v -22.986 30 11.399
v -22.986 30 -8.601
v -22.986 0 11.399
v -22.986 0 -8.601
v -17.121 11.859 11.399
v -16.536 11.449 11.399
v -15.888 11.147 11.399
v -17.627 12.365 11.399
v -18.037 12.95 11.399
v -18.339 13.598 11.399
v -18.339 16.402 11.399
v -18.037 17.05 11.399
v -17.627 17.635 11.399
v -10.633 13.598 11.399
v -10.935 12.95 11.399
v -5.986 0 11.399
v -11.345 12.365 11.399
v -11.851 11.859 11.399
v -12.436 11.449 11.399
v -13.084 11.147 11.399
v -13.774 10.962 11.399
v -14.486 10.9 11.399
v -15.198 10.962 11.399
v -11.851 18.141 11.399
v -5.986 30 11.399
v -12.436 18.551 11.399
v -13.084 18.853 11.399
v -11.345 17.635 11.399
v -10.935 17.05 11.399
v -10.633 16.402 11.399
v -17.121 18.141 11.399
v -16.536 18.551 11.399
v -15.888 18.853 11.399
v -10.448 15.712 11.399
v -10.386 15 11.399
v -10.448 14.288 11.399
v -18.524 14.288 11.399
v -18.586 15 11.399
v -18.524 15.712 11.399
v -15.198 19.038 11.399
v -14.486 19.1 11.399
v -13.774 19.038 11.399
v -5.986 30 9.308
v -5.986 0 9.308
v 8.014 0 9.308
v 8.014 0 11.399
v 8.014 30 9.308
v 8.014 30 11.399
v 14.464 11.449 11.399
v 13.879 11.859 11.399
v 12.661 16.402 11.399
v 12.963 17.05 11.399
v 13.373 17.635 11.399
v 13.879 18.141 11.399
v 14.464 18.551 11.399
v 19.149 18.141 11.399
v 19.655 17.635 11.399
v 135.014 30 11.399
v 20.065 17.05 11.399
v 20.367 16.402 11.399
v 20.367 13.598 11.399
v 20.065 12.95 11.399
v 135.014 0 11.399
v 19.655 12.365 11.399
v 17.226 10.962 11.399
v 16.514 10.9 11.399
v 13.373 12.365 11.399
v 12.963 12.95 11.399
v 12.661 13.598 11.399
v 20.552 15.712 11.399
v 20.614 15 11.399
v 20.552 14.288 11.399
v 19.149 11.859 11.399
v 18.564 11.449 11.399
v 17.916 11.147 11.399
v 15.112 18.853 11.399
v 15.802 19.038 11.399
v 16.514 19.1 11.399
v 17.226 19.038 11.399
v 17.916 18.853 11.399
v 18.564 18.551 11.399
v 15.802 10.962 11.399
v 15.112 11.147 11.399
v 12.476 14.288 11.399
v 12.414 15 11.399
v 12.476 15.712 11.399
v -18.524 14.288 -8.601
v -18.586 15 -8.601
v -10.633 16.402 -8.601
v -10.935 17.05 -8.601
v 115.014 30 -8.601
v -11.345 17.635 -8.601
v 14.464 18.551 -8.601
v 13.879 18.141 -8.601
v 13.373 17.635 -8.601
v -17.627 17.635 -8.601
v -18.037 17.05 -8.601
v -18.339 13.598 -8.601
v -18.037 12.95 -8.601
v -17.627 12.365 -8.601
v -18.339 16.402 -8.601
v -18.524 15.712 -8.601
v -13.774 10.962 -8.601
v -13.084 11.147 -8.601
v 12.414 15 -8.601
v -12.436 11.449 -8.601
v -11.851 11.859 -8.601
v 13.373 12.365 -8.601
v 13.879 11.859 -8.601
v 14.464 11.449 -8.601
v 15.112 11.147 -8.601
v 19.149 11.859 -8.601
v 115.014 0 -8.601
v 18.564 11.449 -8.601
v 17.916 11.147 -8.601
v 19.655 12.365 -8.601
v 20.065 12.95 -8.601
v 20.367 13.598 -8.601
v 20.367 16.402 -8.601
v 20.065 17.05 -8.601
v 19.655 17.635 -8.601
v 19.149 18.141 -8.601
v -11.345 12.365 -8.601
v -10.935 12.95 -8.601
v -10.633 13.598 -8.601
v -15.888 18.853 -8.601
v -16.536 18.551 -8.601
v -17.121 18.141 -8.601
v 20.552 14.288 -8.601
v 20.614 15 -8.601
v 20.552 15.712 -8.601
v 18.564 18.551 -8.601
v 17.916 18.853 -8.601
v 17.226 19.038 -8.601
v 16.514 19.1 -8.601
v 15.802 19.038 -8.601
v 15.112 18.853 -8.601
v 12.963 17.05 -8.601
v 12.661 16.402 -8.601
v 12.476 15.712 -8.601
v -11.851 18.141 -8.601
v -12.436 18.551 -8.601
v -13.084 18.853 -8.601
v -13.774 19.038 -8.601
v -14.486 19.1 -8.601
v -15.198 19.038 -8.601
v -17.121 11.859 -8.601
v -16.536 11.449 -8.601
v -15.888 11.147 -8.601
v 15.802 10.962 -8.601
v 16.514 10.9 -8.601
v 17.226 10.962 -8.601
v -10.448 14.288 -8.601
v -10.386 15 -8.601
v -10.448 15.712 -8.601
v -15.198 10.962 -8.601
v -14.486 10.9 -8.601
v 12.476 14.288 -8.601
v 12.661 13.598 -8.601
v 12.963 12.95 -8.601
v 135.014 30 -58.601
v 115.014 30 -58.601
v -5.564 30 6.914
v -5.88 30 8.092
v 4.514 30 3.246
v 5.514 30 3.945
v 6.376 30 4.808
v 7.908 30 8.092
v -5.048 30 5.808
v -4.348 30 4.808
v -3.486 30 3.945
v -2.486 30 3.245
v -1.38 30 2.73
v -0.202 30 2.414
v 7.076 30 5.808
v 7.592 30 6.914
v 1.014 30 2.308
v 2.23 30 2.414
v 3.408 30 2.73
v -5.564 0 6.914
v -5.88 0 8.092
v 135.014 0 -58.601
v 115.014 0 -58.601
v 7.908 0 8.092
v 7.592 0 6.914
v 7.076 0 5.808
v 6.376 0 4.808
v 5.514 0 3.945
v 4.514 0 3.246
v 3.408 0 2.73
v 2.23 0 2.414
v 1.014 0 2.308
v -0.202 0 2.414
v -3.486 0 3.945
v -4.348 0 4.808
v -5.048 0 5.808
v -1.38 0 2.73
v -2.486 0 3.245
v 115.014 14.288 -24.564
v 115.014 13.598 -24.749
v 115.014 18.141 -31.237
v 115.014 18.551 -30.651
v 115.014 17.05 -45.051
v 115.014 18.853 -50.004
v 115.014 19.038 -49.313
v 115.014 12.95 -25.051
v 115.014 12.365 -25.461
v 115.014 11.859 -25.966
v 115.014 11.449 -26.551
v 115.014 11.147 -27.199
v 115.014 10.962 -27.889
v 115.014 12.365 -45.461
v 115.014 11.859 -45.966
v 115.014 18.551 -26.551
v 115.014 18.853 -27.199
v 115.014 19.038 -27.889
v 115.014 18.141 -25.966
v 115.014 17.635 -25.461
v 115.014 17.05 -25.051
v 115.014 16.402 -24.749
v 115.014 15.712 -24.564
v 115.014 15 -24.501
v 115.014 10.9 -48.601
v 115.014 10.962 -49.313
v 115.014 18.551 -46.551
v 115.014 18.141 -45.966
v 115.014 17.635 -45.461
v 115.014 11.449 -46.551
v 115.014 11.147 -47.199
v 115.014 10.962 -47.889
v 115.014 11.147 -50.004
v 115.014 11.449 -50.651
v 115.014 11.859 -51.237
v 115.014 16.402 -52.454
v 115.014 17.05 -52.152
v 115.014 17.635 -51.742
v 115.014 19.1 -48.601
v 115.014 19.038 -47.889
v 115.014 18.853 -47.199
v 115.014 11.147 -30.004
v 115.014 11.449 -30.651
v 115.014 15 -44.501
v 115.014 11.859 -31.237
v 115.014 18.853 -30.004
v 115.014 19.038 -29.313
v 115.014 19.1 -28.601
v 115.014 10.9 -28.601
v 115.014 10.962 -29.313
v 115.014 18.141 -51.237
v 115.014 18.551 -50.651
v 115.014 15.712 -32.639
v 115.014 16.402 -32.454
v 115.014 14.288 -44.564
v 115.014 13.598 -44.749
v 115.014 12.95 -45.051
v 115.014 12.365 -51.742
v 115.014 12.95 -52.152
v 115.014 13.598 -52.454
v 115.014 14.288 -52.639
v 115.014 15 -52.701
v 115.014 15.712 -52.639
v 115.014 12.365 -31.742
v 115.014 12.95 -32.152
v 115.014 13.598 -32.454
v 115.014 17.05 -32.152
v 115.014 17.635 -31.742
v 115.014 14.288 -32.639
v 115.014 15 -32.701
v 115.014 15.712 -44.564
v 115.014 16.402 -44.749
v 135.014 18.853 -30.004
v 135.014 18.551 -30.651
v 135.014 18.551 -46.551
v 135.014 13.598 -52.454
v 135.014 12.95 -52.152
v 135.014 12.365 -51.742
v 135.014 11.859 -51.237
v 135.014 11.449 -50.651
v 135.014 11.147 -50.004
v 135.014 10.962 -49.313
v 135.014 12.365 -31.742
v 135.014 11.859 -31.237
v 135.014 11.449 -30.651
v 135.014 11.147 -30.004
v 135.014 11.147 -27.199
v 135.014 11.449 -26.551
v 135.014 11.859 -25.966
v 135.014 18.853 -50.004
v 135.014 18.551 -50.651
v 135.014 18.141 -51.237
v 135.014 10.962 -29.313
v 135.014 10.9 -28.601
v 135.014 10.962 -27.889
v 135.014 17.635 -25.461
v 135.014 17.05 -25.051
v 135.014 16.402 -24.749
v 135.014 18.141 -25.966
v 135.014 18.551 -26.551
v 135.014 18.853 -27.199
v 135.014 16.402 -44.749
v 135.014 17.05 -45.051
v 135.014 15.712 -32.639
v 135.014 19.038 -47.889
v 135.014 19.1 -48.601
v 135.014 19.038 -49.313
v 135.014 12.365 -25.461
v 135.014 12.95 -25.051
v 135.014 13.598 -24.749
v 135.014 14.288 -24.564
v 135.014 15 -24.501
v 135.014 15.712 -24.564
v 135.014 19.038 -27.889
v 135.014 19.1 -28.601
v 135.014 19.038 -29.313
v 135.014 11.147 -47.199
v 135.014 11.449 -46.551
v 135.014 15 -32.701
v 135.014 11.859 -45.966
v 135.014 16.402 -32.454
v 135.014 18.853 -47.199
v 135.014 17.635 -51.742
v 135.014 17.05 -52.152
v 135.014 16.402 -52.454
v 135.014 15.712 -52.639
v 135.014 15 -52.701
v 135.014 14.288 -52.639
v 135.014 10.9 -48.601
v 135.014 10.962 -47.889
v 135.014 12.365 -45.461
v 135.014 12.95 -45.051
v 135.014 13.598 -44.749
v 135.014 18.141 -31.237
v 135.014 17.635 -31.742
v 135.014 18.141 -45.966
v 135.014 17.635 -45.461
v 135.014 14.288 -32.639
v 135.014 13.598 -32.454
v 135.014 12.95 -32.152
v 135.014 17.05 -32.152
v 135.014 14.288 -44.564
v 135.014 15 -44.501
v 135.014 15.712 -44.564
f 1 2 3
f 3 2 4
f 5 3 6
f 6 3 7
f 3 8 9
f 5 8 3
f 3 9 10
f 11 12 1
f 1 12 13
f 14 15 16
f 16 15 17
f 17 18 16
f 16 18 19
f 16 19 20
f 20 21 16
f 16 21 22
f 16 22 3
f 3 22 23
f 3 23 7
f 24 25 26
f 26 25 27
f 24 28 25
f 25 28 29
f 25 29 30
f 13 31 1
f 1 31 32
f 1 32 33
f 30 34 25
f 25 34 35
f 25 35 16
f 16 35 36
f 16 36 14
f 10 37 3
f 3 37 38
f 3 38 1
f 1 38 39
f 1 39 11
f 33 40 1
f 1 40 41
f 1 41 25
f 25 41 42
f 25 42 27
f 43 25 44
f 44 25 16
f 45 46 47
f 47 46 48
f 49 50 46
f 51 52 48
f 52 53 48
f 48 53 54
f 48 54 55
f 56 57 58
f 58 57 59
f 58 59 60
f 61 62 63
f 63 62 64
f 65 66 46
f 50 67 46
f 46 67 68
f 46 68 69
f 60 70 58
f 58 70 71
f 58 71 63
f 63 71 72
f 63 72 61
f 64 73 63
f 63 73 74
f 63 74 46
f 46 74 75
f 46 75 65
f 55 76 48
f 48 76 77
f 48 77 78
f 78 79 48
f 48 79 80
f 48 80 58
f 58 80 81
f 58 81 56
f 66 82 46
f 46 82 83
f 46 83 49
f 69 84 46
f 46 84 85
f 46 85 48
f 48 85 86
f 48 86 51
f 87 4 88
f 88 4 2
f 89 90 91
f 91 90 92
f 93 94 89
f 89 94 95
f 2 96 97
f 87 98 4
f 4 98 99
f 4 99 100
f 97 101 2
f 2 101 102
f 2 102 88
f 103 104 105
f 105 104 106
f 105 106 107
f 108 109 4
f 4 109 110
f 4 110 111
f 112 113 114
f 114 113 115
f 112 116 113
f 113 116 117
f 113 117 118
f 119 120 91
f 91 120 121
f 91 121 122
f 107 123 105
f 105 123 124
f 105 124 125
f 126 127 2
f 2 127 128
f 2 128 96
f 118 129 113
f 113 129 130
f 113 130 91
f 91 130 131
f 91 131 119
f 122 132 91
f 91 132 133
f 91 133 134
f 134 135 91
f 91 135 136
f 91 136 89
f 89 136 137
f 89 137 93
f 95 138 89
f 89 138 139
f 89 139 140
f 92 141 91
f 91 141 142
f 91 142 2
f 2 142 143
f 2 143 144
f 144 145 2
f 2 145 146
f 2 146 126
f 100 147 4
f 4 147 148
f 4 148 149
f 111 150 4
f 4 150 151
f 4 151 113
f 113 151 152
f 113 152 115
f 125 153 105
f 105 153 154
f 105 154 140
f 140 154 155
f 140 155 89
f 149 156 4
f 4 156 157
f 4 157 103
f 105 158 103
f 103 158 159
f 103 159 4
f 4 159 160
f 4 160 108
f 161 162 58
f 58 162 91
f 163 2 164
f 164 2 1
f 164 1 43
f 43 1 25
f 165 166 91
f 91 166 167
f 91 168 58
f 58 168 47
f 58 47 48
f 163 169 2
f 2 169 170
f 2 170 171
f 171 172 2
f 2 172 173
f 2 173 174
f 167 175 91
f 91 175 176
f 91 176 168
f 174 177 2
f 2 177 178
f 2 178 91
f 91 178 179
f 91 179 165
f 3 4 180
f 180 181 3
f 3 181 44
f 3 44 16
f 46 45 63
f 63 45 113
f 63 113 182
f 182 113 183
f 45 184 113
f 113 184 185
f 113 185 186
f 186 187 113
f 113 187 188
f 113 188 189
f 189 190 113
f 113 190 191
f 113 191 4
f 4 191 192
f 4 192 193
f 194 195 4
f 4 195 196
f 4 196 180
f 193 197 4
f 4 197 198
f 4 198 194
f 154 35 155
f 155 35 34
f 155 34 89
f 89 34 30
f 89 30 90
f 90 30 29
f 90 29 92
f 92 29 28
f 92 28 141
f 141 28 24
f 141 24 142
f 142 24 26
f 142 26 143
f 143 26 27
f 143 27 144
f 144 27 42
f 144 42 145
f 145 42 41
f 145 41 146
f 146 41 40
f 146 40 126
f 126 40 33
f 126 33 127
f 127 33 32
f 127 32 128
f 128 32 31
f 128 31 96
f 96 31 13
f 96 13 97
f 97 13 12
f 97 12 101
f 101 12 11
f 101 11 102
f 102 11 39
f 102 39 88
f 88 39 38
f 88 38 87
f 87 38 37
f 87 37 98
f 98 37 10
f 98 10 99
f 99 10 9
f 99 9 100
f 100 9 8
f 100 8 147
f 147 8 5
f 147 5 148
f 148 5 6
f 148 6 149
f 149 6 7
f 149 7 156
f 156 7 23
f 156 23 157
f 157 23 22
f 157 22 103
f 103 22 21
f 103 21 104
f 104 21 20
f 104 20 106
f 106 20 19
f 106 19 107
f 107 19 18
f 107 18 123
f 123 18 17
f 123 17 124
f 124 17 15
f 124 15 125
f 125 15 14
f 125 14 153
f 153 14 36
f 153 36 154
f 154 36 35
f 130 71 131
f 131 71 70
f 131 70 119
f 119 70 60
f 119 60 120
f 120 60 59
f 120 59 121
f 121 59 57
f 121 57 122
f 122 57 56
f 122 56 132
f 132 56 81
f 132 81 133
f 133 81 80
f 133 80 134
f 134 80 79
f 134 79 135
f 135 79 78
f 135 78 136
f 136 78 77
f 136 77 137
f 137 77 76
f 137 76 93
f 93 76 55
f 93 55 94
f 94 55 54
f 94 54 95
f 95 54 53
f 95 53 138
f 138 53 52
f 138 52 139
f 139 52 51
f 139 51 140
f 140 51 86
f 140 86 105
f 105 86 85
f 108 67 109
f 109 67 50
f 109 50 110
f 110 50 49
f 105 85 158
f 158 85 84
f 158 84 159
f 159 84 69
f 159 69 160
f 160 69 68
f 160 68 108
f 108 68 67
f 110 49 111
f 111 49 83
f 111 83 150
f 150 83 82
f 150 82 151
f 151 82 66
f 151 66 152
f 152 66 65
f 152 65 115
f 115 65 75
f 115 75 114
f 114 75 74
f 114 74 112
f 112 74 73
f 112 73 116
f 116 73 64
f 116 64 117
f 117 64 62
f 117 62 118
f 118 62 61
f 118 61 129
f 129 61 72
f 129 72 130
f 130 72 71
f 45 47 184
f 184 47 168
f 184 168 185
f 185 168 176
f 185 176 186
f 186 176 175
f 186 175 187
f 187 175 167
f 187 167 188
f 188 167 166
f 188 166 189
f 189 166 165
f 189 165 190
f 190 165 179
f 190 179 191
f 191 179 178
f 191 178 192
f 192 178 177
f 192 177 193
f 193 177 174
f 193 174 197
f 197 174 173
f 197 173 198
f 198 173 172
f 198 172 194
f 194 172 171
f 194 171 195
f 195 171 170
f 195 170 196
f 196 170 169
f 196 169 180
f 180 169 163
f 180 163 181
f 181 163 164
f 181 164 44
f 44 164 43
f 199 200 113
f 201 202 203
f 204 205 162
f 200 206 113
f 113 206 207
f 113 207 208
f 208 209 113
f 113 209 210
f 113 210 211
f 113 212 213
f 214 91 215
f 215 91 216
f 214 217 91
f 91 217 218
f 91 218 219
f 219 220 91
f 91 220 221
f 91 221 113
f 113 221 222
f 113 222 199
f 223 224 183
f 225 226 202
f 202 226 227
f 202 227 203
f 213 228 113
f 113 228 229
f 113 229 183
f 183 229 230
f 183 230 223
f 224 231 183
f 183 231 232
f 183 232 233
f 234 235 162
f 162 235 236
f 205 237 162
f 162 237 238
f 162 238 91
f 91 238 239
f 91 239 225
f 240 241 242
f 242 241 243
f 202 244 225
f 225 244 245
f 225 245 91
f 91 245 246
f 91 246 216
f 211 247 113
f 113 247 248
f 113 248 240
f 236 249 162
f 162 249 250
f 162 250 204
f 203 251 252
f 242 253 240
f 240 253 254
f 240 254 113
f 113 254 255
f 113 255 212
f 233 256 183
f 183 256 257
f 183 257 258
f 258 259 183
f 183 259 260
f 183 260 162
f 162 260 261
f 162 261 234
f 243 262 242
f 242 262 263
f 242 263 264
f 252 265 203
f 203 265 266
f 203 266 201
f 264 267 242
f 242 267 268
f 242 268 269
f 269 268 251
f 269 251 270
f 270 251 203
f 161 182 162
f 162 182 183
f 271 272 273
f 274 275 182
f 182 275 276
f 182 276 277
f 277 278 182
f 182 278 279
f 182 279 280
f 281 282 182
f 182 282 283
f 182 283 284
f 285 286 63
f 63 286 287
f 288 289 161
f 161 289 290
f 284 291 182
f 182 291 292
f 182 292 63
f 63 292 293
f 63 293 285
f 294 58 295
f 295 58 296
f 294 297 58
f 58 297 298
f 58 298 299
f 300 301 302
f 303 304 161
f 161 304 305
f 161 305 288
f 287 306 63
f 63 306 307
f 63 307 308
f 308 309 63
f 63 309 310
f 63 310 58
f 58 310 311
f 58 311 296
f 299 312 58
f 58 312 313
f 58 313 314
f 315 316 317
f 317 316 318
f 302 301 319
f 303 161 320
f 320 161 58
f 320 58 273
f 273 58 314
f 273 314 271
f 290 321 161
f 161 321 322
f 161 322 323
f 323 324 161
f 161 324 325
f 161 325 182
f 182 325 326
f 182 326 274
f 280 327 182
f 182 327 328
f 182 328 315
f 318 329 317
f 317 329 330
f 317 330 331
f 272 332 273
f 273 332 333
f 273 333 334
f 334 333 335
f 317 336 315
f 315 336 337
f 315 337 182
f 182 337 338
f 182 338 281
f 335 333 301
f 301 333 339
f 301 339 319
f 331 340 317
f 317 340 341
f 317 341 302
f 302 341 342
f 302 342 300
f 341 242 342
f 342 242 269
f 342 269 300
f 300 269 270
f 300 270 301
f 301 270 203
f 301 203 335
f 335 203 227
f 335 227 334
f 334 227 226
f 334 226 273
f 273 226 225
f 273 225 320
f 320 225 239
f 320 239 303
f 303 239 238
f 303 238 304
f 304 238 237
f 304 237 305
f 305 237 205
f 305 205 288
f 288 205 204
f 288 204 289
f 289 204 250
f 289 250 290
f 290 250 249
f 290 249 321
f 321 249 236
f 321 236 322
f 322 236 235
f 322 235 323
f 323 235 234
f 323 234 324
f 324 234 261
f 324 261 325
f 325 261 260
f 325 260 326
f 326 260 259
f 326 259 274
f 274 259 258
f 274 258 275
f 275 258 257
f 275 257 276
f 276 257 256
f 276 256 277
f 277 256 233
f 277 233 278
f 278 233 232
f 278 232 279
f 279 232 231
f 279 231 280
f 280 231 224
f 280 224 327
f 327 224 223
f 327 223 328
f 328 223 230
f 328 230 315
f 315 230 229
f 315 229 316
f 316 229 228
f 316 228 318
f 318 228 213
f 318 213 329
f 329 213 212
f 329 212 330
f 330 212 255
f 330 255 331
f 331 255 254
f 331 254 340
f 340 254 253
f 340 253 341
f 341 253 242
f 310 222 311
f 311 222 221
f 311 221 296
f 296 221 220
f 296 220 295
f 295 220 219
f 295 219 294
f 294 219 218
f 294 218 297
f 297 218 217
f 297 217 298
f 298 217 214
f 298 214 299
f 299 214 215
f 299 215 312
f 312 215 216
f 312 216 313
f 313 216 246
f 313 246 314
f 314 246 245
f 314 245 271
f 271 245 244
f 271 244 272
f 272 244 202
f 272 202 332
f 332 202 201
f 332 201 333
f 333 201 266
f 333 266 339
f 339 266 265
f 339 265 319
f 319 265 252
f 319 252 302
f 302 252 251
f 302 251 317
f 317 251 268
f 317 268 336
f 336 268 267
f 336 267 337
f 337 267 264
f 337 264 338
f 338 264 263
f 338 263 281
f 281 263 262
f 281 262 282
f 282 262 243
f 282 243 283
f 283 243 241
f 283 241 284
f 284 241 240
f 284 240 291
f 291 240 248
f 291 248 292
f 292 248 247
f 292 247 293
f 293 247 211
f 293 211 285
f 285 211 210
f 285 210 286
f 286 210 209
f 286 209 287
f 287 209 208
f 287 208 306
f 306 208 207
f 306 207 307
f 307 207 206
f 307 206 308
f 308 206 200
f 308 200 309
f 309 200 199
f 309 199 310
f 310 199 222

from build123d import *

# Parameters (mm, degrees)
BOSS_EXTRUDE1_DEPTH = 30
SKETCH3_R           = 4.1
CUT_EXTRUDE1_DEPTH  = 81.160460929
SKETCH4_R           = 4.1
CUT_EXTRUDE2_DEPTH  = 72.938334134
FILLET1_R           = 7
BOSS_EXTRUDE2_DEPTH = 30
SKETCH7_R           = 4.1
CUT_EXTRUDE3_DEPTH  = 154.802223385
SKETCH8_W           = 10
SKETCH8_H           = 50
CUT_EXTRUDE4_DEPTH  = 151.209521461


with BuildPart() as part:
    # Sketch1 → Boss-Extrude1 (new body)
    with BuildSketch(Plane(origin=(0, 0, 0), x_dir=(1, 0, 0), z_dir=(0, 1, 0))):
        Polygon((-22.986013986, 8.601398601), (-22.986013986, -11.398601399), (-5.986013986, -11.398601399), (-5.986013986, -2.307692308), (8.013986014, -2.307692308), (8.013986014, -11.398601399), (25.013986014, -11.398601399), (25.013986014, 8.601398601), (6.013986014, 8.601398601), (6.013986014, 58.601398601), (-3.986013986, 58.601398601), (-3.986013986, 8.601398601), align=None)
    extrude(amount=BOSS_EXTRUDE1_DEPTH)

    # Sketch3 → Cut-Extrude1 (cut, through all)
    with BuildSketch(Plane.XY.offset(11.398601399)):
        with Locations((-14.486013986, 15)):
            Circle(SKETCH3_R)
        with Locations((16.513986014, 15)):
            Circle(SKETCH3_R)
    extrude(amount=-CUT_EXTRUDE1_DEPTH, mode=Mode.SUBTRACT)

    # Sketch4 → Cut-Extrude2 (cut, through all)
    with BuildSketch(Plane(origin=(6.013986014, 0, 0), x_dir=(0, 0, -1), z_dir=(1, 0, 0))):
        with Locations((28.601398601, 15)):
            Circle(SKETCH4_R)
        with Locations((48.601398601, 15)):
            Circle(SKETCH4_R)
    extrude(amount=-CUT_EXTRUDE2_DEPTH, mode=Mode.SUBTRACT)

    # Fillet1
    fillet1_edges = [part.edges().sort_by_distance(p)[0] for p in [
        (-5.986013986, 15, 2.307692308),
        (8.013986014, 15, 2.307692308),
    ]]
    fillet(fillet1_edges, radius=FILLET1_R - 0.0001)  # a hair under: the kernel refuses the full size

    # Sketch6 → Boss-Extrude2 (add)
    with BuildSketch(Plane.XZ):
        Polygon((25.013986014, 11.398601399), (135.013986014, 11.398601399), (135.013986014, -58.601398601), (115.013986014, -58.601398601), (115.013986014, -8.601398601), (25.013986014, -8.601398601), align=None)
    extrude(amount=-BOSS_EXTRUDE2_DEPTH)

    # Sketch7 → Cut-Extrude3 (cut, through all)
    with BuildSketch(Plane.ZY.offset(3.986013986)):
        with Locations(Location((-48.601398601, 15, 0), (0, 0, 180))):
            Circle(SKETCH7_R)
        with Locations(Location((-28.601398601, 15, 0), (0, 0, 180))):
            Circle(SKETCH7_R)
    extrude(amount=-CUT_EXTRUDE3_DEPTH, mode=Mode.SUBTRACT)

    # Sketch8 → Cut-Extrude4 (cut, through all)
    with BuildSketch(Plane(origin=(0, 30, 0), x_dir=(1, 0, 0), z_dir=(0, 1, 0))):
        with Locations((1.013986014, 33.601398601)):
            Rectangle(SKETCH8_W, SKETCH8_H)
    extrude(amount=-CUT_EXTRUDE4_DEPTH, mode=Mode.SUBTRACT)


solid = part.part
